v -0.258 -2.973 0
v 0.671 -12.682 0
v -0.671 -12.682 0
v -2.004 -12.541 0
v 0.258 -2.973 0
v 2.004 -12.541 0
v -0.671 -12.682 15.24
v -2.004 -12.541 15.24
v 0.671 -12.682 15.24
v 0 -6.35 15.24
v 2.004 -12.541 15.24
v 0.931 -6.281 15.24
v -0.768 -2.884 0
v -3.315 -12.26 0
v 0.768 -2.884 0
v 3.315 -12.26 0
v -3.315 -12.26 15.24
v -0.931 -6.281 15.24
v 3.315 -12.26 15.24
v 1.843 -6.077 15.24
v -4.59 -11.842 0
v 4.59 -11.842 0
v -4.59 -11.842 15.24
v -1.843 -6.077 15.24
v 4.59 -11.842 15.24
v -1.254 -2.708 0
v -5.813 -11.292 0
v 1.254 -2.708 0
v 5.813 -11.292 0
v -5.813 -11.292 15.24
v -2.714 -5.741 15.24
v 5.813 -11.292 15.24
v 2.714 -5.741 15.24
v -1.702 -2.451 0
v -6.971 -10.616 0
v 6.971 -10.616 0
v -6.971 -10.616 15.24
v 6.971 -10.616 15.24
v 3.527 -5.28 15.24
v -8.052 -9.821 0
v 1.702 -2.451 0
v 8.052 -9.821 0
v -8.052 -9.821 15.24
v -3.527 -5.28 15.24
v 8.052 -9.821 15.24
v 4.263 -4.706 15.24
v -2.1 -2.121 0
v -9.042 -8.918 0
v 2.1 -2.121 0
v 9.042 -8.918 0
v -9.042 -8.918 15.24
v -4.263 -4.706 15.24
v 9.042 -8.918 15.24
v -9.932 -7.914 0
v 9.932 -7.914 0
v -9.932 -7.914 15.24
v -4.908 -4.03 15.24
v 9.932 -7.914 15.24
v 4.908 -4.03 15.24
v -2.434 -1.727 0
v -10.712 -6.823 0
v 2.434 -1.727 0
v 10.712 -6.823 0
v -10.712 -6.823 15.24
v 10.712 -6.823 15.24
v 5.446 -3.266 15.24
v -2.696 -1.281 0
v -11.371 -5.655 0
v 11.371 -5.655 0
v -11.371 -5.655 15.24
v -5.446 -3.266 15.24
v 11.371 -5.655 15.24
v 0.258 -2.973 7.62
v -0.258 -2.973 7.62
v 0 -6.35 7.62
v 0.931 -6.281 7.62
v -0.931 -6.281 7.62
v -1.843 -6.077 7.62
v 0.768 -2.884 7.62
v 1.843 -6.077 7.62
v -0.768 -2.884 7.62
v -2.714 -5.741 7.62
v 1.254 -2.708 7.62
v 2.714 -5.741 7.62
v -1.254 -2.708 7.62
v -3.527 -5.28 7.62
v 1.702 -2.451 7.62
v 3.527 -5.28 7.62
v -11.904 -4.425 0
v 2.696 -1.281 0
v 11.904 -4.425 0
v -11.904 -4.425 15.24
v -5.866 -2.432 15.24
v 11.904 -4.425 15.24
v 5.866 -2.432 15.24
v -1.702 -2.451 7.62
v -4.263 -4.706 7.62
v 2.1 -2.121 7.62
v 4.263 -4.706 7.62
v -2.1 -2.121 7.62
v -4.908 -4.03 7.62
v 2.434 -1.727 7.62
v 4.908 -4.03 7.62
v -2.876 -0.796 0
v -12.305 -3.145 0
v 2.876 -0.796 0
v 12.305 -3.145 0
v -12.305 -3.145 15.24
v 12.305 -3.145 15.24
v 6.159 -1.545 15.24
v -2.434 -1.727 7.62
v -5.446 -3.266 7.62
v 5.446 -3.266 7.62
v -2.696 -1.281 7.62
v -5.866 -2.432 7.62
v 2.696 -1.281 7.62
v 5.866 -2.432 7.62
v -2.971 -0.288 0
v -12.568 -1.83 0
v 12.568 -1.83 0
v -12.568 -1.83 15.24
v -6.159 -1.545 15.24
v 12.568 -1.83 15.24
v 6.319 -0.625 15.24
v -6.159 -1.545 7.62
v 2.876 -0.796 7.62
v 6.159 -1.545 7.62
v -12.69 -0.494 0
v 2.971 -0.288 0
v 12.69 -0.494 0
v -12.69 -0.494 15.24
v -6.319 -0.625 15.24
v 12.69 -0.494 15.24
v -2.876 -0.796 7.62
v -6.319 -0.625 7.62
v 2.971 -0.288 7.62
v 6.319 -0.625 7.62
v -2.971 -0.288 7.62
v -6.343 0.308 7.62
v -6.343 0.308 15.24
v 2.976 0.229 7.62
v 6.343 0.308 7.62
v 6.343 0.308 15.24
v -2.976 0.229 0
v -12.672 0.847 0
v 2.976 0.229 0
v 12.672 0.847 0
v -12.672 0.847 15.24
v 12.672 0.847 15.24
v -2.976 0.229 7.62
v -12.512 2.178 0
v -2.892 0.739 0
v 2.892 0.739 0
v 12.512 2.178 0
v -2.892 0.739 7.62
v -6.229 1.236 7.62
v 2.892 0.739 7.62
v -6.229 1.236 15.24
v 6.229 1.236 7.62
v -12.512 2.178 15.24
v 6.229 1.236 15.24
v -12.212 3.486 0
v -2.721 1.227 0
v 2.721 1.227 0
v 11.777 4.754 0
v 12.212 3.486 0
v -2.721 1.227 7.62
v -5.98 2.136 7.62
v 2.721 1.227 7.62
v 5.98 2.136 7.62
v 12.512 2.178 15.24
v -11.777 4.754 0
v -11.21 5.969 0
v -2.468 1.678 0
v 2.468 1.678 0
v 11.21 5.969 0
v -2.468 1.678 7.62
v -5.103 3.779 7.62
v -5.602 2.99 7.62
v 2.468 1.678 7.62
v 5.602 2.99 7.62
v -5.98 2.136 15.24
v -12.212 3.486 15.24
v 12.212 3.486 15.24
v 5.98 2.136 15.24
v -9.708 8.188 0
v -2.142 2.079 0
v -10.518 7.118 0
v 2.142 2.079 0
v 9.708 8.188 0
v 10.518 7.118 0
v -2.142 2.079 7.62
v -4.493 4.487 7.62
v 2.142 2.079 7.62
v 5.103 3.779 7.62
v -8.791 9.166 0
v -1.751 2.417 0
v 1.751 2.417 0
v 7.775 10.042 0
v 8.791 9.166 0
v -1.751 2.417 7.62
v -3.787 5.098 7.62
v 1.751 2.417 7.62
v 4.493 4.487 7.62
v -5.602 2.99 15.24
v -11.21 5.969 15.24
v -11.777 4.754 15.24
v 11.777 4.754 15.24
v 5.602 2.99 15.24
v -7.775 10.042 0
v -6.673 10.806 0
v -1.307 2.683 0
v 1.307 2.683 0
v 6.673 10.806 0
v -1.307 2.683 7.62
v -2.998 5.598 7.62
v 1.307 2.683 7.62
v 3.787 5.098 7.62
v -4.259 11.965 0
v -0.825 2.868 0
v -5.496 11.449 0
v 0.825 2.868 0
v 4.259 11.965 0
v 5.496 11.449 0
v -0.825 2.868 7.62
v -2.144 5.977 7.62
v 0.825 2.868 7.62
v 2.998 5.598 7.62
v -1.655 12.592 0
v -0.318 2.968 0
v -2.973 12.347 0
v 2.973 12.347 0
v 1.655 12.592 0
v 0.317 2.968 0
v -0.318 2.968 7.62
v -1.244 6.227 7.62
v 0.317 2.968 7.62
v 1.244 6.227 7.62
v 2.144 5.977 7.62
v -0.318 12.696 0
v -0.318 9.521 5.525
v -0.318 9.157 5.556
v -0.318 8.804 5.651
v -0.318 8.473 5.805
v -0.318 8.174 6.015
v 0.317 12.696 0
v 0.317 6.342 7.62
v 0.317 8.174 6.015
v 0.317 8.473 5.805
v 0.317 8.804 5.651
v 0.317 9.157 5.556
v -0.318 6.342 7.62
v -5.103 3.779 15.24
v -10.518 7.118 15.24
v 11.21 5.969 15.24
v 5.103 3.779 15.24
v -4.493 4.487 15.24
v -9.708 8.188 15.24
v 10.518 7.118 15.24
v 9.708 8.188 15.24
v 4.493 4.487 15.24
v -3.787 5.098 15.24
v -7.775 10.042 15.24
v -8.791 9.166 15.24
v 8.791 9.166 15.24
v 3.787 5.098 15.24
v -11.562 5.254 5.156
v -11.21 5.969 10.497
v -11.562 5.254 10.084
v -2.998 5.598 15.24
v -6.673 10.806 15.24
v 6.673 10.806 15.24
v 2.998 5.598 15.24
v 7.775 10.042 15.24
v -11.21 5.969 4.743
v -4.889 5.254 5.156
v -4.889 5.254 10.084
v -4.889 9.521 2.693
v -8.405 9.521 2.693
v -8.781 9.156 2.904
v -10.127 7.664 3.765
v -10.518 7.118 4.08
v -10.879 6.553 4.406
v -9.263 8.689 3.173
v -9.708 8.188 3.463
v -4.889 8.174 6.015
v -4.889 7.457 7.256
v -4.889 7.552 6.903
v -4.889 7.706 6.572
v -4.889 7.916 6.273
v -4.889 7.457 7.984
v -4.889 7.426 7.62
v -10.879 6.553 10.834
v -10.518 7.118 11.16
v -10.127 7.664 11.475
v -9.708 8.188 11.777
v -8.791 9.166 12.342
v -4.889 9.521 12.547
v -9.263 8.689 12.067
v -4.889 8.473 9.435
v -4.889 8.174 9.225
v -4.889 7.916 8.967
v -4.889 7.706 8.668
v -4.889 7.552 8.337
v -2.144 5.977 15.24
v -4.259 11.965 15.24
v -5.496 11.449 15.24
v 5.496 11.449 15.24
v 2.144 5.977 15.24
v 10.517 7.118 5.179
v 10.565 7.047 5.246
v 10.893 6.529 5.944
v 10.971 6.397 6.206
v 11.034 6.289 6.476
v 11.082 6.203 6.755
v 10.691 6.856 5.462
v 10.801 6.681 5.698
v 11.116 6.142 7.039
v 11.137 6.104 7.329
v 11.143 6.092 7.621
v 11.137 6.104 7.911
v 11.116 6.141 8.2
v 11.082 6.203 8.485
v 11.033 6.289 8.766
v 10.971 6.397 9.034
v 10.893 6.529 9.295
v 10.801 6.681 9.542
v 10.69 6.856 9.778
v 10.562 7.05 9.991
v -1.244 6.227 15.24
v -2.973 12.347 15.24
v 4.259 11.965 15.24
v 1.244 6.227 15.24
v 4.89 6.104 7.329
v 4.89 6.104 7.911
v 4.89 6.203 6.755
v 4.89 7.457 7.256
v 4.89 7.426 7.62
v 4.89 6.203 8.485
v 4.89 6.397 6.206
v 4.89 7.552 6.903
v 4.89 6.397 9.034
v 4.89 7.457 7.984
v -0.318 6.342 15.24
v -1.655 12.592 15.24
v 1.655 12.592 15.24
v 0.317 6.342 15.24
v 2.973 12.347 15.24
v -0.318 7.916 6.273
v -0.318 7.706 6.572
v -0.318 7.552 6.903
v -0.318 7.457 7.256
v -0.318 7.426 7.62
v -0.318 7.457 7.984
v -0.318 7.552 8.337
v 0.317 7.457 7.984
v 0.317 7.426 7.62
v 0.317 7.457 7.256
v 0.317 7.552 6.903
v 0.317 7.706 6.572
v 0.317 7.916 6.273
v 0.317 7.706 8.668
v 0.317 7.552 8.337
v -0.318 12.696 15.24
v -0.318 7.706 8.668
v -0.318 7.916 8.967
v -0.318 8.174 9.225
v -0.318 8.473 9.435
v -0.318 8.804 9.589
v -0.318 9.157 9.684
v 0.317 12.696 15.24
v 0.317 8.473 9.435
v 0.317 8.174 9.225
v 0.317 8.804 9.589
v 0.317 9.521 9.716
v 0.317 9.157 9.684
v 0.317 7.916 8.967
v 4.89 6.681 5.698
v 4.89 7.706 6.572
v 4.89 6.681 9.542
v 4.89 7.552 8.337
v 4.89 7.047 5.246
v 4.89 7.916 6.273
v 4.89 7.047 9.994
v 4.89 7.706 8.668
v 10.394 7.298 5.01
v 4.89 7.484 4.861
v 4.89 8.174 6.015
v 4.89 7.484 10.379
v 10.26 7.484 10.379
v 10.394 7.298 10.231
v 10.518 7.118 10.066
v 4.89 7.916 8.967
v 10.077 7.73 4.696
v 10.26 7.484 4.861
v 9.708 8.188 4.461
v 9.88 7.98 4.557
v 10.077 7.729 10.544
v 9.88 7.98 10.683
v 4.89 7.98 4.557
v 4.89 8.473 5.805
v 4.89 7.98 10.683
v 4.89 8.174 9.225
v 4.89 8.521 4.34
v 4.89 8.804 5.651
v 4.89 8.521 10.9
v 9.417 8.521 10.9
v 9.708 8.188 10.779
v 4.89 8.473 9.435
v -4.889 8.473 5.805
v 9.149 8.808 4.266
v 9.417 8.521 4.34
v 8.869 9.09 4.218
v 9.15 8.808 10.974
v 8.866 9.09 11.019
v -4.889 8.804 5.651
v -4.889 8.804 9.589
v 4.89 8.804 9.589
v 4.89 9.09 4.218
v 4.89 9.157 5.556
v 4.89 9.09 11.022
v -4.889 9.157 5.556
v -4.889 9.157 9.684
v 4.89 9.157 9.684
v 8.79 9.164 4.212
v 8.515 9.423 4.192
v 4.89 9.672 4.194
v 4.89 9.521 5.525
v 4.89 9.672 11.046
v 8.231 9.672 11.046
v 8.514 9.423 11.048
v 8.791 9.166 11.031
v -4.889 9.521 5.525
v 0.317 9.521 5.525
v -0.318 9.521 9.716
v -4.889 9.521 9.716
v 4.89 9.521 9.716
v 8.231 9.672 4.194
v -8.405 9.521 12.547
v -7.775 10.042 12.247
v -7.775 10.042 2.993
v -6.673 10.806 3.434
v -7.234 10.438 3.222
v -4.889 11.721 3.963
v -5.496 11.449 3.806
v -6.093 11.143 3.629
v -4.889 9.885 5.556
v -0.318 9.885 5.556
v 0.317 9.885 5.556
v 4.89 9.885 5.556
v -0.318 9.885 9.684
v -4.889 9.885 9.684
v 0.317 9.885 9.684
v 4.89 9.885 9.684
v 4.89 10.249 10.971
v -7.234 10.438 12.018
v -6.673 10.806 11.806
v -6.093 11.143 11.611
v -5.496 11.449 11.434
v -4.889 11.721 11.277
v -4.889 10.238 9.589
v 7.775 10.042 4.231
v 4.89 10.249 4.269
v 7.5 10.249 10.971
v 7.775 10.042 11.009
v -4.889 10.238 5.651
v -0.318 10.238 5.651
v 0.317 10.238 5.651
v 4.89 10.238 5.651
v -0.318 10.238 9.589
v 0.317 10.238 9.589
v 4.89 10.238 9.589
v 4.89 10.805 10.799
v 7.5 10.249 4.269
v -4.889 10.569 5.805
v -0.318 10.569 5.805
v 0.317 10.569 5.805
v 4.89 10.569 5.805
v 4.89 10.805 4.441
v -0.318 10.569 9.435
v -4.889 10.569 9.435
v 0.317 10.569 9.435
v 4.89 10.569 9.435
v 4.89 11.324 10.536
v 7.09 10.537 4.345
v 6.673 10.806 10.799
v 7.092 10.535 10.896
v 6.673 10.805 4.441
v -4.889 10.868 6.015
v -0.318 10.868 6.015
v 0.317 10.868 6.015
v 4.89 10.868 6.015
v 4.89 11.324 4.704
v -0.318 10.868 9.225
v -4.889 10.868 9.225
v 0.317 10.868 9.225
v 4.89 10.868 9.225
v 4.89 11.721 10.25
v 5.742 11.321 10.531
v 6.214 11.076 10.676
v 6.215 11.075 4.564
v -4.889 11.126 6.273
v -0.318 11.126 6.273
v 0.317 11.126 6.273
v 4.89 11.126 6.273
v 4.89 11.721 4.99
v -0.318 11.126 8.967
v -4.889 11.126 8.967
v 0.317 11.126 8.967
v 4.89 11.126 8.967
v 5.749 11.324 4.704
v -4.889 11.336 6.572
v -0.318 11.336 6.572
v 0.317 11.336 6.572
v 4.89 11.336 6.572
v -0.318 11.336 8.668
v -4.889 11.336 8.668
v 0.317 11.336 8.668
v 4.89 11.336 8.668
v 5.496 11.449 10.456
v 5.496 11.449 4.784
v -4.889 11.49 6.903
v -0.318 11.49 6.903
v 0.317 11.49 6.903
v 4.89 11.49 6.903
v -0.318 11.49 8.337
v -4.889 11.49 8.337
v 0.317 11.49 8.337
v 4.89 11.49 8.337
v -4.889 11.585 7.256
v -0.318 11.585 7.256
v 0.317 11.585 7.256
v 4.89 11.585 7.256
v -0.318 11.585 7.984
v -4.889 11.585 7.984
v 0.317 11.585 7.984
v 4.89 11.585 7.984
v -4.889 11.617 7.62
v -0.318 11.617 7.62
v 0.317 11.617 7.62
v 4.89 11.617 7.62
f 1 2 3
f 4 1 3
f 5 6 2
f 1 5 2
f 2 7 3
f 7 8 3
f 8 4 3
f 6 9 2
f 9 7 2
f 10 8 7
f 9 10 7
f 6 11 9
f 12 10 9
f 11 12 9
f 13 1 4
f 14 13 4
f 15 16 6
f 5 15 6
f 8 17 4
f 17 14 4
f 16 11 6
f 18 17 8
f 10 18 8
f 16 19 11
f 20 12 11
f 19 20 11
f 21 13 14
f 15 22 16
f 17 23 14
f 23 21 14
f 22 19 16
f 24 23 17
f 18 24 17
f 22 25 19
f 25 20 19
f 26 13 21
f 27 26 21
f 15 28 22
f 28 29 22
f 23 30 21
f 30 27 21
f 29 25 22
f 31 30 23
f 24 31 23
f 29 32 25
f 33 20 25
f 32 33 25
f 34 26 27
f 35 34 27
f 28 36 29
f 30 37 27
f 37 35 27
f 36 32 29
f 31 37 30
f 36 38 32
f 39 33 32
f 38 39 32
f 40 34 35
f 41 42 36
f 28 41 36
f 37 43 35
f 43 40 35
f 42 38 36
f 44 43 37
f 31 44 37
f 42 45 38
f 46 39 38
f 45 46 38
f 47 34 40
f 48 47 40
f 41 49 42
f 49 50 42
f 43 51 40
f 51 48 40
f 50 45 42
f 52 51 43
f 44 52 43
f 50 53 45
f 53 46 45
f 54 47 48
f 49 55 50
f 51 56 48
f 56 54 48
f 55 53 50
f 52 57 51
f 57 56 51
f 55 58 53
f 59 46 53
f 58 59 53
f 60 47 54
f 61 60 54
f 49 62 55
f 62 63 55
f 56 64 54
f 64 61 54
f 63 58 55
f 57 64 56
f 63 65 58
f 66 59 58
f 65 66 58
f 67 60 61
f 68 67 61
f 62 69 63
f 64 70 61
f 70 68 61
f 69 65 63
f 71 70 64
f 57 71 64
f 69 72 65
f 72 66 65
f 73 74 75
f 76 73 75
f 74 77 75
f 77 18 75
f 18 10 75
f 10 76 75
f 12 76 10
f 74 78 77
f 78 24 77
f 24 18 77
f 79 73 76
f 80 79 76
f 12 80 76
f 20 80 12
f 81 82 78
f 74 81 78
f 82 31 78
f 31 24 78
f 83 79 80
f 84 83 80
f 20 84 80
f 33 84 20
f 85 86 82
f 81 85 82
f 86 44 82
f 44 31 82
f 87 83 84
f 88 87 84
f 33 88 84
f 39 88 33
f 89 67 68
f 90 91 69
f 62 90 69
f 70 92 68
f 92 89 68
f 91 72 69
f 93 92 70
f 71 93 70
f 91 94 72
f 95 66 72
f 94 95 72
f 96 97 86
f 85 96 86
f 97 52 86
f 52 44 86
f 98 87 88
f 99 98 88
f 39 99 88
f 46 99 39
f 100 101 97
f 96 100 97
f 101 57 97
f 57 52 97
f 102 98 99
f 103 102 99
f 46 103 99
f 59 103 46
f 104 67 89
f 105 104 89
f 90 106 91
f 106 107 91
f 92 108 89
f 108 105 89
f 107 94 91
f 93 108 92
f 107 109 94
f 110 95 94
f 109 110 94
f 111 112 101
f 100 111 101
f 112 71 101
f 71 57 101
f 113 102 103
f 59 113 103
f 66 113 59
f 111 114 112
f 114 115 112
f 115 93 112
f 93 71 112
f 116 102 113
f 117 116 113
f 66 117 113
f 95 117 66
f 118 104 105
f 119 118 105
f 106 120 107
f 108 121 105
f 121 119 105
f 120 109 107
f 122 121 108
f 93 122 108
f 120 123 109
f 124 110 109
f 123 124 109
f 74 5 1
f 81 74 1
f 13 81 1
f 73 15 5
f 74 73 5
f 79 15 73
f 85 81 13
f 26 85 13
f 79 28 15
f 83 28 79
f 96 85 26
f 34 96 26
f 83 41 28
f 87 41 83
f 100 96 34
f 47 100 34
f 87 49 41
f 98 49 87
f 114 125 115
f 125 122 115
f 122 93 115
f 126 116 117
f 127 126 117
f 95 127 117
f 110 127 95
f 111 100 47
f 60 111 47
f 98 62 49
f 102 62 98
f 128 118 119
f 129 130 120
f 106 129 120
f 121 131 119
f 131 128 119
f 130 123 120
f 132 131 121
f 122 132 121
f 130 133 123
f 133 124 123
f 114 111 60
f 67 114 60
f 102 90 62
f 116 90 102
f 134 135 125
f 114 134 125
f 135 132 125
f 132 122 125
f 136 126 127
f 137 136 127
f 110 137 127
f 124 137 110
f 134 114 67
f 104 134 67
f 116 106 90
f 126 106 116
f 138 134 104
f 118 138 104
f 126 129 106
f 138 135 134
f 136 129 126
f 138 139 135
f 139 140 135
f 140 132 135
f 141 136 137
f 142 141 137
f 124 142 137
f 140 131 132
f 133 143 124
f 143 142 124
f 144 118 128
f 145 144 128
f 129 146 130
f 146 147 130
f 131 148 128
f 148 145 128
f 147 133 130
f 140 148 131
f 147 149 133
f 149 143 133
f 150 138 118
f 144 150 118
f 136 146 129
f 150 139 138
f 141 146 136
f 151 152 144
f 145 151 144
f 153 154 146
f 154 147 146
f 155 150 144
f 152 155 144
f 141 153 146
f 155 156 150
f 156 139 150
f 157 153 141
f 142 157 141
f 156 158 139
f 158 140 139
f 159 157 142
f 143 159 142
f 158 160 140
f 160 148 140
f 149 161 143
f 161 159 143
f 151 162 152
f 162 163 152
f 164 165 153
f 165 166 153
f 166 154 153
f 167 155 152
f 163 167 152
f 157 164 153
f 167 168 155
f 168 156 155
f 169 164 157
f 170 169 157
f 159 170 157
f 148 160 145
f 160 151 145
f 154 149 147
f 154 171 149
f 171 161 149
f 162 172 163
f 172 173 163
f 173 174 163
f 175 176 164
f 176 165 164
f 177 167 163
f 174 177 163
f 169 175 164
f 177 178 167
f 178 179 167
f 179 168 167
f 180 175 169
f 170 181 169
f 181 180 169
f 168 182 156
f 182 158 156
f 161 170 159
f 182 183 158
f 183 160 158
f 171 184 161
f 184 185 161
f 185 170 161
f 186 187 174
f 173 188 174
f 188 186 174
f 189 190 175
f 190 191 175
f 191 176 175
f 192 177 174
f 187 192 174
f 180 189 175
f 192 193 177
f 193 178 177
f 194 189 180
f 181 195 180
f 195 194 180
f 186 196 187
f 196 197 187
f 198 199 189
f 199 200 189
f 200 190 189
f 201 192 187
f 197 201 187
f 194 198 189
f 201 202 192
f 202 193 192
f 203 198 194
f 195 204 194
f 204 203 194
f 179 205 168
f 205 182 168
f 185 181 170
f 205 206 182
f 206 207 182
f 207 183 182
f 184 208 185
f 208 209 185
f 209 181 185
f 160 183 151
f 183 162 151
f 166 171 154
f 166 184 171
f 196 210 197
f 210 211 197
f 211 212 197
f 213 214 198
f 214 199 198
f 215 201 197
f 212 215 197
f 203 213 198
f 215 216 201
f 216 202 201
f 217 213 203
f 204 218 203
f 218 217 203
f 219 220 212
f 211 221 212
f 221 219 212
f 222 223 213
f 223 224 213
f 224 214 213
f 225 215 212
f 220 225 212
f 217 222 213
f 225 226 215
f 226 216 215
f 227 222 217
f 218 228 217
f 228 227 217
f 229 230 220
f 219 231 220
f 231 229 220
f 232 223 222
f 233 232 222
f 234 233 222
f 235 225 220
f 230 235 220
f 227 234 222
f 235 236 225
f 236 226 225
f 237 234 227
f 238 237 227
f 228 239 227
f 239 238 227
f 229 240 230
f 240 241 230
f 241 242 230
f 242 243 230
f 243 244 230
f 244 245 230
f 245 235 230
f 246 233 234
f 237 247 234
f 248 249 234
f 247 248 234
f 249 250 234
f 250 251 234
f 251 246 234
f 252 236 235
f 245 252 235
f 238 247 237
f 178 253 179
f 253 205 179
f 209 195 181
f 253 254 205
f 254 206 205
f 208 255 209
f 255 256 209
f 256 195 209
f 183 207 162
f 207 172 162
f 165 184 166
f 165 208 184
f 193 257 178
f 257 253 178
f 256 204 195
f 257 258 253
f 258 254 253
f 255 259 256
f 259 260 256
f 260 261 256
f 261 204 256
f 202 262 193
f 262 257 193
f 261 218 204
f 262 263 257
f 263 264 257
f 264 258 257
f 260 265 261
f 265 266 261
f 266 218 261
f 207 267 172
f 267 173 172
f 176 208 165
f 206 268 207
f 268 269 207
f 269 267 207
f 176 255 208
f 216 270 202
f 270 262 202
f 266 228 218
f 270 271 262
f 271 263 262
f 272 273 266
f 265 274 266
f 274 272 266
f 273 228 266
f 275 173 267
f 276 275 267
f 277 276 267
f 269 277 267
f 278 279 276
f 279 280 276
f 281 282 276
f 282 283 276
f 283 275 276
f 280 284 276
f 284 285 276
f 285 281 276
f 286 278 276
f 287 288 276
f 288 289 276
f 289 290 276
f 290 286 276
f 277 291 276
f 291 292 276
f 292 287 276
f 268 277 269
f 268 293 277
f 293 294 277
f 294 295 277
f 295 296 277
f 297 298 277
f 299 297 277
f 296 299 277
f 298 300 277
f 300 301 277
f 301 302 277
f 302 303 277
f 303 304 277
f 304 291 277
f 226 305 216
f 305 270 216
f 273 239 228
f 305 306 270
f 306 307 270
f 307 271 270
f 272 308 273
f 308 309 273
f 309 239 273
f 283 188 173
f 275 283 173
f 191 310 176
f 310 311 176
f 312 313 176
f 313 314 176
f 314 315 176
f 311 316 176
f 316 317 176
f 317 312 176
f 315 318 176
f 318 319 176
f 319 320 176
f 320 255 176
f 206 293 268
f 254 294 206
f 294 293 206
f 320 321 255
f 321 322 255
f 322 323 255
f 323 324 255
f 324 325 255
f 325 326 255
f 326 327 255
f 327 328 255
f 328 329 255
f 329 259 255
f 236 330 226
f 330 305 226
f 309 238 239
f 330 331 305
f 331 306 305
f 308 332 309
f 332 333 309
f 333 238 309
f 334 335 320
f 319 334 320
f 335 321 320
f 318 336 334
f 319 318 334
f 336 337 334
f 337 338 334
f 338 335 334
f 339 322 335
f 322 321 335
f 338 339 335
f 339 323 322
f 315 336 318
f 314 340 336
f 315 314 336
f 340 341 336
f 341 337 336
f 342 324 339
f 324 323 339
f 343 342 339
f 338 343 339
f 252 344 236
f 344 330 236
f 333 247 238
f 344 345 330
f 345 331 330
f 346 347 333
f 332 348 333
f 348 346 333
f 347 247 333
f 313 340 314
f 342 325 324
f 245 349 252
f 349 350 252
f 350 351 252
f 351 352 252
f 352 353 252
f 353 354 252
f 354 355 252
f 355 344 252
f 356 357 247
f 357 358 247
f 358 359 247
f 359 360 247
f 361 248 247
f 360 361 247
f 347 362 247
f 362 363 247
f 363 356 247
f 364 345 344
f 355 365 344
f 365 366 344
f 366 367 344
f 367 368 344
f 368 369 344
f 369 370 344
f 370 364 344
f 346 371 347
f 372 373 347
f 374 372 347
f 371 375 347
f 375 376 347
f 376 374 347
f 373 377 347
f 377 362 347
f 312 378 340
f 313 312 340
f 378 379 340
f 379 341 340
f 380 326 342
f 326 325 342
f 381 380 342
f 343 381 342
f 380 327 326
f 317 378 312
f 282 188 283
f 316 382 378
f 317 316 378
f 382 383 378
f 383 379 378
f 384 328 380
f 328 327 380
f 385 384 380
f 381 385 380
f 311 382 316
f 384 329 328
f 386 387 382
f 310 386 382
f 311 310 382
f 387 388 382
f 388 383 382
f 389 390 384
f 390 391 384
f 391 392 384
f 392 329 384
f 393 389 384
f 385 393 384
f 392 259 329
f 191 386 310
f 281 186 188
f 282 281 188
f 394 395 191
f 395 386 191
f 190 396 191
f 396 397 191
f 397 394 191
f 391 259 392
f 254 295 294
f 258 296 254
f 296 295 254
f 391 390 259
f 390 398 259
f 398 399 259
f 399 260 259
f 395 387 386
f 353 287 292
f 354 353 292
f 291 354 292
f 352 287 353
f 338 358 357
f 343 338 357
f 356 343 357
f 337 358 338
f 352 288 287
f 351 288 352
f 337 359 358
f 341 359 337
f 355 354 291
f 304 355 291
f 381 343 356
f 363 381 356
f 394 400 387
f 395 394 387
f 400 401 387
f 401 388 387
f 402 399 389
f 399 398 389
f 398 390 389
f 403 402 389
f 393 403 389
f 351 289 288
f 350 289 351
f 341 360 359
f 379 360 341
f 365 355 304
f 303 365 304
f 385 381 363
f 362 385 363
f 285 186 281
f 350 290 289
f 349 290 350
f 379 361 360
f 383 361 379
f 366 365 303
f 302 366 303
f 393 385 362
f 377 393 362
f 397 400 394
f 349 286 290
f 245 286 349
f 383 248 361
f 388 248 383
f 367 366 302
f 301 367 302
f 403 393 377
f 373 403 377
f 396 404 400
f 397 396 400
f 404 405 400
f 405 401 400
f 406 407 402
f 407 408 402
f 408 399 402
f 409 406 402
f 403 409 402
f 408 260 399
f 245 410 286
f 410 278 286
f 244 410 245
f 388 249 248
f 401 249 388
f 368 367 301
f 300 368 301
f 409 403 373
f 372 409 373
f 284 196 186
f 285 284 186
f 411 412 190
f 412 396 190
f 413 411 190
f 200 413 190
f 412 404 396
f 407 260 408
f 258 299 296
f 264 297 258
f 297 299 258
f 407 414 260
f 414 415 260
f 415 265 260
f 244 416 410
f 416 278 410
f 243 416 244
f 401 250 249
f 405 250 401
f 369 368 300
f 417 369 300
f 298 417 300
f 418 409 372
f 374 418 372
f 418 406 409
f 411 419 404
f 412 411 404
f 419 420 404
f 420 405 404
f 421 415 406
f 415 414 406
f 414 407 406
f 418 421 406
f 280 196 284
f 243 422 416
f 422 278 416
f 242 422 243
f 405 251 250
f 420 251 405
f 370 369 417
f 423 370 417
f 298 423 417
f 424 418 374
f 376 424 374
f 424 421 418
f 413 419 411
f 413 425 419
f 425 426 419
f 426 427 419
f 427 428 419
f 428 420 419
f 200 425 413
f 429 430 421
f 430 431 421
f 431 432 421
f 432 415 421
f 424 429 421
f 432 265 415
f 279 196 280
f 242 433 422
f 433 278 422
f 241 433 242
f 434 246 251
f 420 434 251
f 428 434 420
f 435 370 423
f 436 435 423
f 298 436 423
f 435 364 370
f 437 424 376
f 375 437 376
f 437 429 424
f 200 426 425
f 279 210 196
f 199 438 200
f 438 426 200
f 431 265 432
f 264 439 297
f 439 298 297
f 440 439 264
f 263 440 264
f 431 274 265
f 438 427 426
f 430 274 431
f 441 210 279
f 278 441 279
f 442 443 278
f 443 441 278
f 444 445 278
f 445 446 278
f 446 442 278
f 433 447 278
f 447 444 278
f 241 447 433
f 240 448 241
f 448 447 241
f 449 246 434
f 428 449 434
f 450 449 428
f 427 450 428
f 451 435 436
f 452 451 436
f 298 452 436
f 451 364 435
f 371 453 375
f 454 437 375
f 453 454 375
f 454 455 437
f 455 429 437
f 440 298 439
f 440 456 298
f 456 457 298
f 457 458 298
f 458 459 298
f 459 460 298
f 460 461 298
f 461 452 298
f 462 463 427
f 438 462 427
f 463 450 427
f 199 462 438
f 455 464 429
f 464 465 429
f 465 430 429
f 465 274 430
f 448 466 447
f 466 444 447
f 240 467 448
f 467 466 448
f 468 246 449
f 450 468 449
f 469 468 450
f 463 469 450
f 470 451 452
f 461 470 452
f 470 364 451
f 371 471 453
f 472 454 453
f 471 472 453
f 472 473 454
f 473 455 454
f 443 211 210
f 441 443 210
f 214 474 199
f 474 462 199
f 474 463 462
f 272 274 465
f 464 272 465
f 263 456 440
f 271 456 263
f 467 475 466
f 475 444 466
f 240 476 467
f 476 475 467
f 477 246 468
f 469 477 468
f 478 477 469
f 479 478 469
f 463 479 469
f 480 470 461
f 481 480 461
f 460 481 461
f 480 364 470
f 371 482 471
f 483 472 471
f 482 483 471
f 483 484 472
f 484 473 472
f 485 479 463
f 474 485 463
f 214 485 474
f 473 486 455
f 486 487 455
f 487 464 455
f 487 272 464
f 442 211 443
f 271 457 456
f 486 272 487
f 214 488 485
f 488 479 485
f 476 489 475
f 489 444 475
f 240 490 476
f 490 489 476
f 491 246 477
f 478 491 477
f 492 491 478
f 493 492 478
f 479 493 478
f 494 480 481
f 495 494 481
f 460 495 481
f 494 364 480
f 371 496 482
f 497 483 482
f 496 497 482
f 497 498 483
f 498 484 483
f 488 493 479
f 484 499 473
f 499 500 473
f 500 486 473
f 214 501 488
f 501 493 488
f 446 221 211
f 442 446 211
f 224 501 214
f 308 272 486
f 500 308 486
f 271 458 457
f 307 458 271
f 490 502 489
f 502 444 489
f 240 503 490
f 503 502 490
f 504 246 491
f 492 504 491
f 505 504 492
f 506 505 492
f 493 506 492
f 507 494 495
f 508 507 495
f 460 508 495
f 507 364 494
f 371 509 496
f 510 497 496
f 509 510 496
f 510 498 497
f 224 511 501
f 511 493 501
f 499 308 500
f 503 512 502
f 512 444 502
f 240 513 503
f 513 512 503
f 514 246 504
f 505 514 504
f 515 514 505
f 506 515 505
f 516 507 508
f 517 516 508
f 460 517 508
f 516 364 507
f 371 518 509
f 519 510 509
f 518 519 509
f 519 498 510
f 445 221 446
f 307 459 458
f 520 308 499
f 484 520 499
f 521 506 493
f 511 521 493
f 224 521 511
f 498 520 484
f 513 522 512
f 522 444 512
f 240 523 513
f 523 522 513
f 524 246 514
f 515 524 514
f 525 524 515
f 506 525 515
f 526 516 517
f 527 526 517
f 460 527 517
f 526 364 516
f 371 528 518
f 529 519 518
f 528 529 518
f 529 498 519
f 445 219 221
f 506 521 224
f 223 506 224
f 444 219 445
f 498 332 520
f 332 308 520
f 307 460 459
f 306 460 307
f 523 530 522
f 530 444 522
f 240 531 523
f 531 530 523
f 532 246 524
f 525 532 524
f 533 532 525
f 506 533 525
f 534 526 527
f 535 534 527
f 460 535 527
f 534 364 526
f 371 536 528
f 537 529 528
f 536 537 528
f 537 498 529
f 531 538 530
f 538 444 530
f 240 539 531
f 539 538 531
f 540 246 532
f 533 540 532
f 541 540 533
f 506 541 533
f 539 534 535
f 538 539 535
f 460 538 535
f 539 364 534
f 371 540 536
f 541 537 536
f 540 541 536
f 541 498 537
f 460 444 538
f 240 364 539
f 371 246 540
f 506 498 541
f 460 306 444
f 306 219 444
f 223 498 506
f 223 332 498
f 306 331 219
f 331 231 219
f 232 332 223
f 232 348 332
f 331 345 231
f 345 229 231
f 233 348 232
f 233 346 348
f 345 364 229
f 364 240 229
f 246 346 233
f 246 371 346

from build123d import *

# Parameters (mm, degrees)
SKETCH1_R               = 12.7
BOSS_EXTRUDE1_DEPTH     = 15.24
SKETCH2_R               = 2.9845
CUT_EXTRUDE1_DEPTH      = 7.62
SKETCH3_R               = 6.35
CUT_EXTRUDE2_DEPTH      = 7.62
CUT_EXTRUDE3_REACH      = 25.555
SKETCH7_W               = 0.635
SKETCH7_H               = 13.97
CUT_EXTRUDE4_DEPTH      = 24.727682277
CUT_EXTRUDE4_DEPTH_BACK = 24.727682277
SKETCH8_R               = 2.0955
SKETCH9_R               = 3.429
CUT_EXTRUDE5_DEPTH      = 7.62
CUT_EXTRUDE6_DEPTH      = 27.512980205


with BuildPart() as part:
    # Sketch1 → Boss-Extrude1 (new body)
    with BuildSketch(Plane.XY):
        with Locations(Location((0, 0, 0), (0, 0, 180))):
            Circle(SKETCH1_R)
    extrude(amount=BOSS_EXTRUDE1_DEPTH)

    # Sketch2 → Cut-Extrude1 (cut)
    with BuildSketch(Plane(origin=(0, 0, 0), x_dir=(-1, 0, 0), z_dir=(0, 0, -1))):
        Circle(SKETCH2_R)
    extrude(amount=-CUT_EXTRUDE1_DEPTH, mode=Mode.SUBTRACT)

    # Sketch3 → Cut-Extrude2 (cut)
    with BuildSketch(Plane.XY.offset(15.24)):
        Circle(SKETCH3_R)
    extrude(amount=-CUT_EXTRUDE2_DEPTH, mode=Mode.SUBTRACT)

    # Sketch7 → Cut-Extrude3 (cut, up to next)
    with BuildSketch(Plane(origin=(0, 0, 0), x_dir=(-1, 0, 0), z_dir=(0, 0, -1)), mode=Mode.PRIVATE) as cut_extrude3_sk1:
        with Locations((0, 6.35)):
            Rectangle(SKETCH7_W, SKETCH7_H)
    cut_extrude3_tool1 = extrude(cut_extrude3_sk1.sketch, amount=-CUT_EXTRUDE3_REACH, mode=Mode.PRIVATE) & part.part
    add(cut_extrude3_tool1.solids().sort_by_distance((0, 6.35, 0))[0], mode=Mode.SUBTRACT)

    # Sketch8 → Cut-Extrude4 (cut, two sides: drawn at the far end of the back side and taken through both)
    with BuildSketch(Plane.ZY.offset(-0.3175).offset(-CUT_EXTRUDE4_DEPTH_BACK)):
        with Locations((7.62, 9.52103063)):
            Circle(SKETCH8_R)
    extrude(amount=CUT_EXTRUDE4_DEPTH + CUT_EXTRUDE4_DEPTH_BACK, mode=Mode.SUBTRACT)

    # Sketch9 → Cut-Extrude5 (cut)
    with BuildSketch(Plane.ZY.offset(-4.8895)):
        with Locations((7.62, 9.52103063)):
            Circle(SKETCH9_R)
    extrude(amount=-CUT_EXTRUDE5_DEPTH, mode=Mode.SUBTRACT)

    # Sketch10 → Cut-Extrude6 (cut, through all)
    with BuildSketch(Plane(origin=(-4.8895, 0, 0), x_dir=(0, 0, -1), z_dir=(1, 0, 0))):
        Polygon((-10.083669069, 5.25383063), (-5.156330931, 5.25383063), (-2.692661863, 9.52103063), (-5.156330931, 13.78823063), (-10.083669069, 13.78823063), (-12.547338137, 9.52103063), align=None)
    extrude(amount=-CUT_EXTRUDE6_DEPTH, mode=Mode.SUBTRACT)


solid = part.part
